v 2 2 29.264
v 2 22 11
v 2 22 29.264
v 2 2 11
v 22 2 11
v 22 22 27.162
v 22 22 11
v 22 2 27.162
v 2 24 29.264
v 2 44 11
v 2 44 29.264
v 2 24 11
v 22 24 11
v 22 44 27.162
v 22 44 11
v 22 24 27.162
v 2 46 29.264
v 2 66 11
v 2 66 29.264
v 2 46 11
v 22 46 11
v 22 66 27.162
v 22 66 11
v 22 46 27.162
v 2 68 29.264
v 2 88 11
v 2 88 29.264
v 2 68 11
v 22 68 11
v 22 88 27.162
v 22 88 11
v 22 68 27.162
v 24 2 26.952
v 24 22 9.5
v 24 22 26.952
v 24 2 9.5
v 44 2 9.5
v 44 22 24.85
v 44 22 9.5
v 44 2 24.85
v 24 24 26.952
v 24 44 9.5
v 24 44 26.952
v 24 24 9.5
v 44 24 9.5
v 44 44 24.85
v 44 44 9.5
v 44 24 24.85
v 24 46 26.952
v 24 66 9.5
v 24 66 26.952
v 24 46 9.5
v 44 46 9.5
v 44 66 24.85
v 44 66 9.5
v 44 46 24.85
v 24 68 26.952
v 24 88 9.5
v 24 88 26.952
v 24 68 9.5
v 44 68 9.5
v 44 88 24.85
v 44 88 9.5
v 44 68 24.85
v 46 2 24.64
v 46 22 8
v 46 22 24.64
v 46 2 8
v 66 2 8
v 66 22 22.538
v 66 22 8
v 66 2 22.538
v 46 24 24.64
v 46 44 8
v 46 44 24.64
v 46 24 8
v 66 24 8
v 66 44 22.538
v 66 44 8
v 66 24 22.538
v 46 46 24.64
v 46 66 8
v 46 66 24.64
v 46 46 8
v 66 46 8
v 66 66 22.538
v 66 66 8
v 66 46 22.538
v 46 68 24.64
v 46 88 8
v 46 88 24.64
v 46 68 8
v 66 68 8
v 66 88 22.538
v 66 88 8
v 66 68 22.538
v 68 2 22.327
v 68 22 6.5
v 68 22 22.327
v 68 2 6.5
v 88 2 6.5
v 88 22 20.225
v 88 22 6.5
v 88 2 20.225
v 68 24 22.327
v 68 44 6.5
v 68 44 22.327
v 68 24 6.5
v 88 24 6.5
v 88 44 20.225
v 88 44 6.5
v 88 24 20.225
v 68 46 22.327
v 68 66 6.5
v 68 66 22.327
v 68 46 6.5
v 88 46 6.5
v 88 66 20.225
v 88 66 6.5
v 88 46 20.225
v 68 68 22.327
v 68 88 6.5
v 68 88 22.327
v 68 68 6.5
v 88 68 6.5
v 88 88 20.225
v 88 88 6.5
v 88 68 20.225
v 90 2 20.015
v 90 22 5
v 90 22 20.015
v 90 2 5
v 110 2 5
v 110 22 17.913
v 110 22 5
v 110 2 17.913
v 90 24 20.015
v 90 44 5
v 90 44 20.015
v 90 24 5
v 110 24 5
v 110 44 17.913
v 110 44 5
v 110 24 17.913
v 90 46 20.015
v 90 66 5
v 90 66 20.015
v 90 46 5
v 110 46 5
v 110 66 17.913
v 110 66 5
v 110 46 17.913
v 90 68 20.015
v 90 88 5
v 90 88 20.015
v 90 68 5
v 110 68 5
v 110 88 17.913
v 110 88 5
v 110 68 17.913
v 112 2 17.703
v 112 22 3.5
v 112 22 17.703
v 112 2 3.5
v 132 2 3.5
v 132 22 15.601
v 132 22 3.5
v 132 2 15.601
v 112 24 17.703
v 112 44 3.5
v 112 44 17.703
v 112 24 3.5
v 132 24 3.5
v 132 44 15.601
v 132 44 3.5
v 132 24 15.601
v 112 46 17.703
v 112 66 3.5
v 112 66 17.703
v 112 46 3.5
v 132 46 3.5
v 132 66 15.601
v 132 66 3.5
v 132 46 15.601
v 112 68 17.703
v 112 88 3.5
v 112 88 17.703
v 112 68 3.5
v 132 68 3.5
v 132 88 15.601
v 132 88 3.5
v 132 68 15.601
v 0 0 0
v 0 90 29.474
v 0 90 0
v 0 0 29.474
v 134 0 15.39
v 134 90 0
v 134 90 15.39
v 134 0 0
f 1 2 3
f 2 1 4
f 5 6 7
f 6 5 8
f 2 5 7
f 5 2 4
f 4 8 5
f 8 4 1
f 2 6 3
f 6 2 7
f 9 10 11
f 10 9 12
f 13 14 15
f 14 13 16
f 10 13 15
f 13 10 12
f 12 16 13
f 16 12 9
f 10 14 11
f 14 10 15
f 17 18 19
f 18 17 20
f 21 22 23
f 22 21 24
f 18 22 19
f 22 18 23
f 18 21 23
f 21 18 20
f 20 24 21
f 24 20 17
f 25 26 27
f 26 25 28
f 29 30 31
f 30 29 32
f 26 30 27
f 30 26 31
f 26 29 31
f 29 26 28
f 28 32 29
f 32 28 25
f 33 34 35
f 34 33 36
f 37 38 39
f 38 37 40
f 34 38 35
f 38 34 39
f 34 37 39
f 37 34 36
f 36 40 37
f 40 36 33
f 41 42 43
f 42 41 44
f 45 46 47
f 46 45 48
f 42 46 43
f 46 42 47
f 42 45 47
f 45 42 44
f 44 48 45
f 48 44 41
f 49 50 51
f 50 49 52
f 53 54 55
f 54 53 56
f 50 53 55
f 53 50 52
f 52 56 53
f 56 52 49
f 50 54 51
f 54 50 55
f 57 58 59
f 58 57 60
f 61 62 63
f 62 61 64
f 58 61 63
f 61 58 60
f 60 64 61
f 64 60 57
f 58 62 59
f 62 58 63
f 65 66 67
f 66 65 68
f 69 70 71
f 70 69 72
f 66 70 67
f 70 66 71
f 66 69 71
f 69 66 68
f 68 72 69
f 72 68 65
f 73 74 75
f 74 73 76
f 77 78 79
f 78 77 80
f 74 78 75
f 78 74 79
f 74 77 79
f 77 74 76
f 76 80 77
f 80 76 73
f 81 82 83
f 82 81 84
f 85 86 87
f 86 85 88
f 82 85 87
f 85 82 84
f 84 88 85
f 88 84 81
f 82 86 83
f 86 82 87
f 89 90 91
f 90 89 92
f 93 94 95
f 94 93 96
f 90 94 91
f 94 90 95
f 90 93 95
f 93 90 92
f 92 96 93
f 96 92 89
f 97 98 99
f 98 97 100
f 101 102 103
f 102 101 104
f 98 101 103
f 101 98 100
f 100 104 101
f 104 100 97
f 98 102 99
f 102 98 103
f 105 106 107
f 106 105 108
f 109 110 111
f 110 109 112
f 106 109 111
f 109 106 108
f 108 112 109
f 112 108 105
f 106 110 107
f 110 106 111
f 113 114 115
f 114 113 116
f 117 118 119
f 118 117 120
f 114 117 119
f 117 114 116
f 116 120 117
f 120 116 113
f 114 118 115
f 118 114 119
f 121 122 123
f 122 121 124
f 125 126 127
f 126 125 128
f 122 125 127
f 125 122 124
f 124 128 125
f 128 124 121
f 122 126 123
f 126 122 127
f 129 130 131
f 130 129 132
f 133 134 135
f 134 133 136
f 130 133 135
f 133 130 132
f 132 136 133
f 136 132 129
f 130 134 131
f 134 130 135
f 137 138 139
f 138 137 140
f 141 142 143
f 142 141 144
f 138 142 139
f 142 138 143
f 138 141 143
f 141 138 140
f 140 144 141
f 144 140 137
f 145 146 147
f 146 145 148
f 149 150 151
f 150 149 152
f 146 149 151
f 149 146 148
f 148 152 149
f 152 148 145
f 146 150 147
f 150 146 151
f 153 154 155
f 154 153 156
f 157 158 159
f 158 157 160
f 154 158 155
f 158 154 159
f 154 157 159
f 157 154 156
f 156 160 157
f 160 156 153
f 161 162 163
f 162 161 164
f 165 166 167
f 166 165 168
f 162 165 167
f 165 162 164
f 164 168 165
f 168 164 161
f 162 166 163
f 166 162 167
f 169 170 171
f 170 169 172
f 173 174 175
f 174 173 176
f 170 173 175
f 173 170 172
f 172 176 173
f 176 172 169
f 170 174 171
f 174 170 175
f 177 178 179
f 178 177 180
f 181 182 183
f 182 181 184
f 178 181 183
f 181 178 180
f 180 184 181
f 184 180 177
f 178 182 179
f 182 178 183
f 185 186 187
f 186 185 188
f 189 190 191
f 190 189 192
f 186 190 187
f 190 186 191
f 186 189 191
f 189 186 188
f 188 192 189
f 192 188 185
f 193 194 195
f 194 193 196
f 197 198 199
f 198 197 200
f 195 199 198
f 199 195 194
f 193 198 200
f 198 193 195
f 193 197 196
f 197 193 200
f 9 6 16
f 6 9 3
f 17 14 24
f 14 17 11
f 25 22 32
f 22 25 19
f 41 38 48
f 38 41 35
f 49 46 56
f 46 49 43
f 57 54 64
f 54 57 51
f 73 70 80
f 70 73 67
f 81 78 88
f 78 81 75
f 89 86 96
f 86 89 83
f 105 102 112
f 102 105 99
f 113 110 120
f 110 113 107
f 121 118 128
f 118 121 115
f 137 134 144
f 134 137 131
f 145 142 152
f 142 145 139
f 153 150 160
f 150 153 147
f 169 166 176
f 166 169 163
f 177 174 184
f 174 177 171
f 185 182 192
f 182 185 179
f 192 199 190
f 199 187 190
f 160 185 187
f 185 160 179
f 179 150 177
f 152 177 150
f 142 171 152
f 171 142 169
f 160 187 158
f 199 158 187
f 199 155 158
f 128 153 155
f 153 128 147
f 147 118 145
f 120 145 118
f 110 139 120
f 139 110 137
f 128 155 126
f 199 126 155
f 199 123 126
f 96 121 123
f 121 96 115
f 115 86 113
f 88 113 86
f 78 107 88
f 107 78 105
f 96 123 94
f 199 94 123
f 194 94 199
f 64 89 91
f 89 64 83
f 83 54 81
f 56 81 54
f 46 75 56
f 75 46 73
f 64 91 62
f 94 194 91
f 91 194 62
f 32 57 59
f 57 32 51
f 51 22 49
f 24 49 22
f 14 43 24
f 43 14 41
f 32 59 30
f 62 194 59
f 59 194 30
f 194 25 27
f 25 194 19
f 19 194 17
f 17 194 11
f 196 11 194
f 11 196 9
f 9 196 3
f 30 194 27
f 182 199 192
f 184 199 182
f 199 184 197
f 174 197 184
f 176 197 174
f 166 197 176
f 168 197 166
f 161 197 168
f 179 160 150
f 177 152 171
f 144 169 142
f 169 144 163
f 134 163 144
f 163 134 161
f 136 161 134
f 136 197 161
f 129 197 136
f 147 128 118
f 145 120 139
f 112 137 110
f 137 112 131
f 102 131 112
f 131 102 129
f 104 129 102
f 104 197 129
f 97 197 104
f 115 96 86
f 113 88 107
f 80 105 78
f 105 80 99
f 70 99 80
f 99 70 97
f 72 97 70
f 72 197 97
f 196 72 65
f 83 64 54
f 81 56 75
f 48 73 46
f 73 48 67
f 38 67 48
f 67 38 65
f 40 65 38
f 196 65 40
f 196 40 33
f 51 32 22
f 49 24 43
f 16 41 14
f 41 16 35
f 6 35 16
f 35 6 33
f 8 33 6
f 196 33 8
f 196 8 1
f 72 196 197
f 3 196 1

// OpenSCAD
module CubieBox(length=20, width=20, height=20, numRows=6, numCols=4, wallThickness=2)
{
    overallLength = (wallThickness + length) * numRows + wallThickness;
    overallWidth  = (wallThickness + width) * numCols + wallThickness;
    overallHeight = height * numRows / 4;

    difference()
    {
        // Overall box shape
        cube([overallLength, overallWidth, overallHeight]);

        // Cut outs for each storage hole
        for (row = [0 : 1 : numRows - 1])
        {
            for (column = [0 : 1 : numCols - 1])
            {
                color(rands(0, 1.0, 3))
                translate([wallThickness + (length + wallThickness) * row,
                           wallThickness + (width + wallThickness) * column,
                           wallThickness + numRows * (numRows - row) / 4])
                cube(length, width, height);
            }
        }

        // Cut diagonally off the top
        translate([-5,  -5,  overallHeight])
        rotate([0, 6, 0])
        cube([overallLength + 10, overallWidth + 10, overallHeight]);
    }
}

CubieBox();
